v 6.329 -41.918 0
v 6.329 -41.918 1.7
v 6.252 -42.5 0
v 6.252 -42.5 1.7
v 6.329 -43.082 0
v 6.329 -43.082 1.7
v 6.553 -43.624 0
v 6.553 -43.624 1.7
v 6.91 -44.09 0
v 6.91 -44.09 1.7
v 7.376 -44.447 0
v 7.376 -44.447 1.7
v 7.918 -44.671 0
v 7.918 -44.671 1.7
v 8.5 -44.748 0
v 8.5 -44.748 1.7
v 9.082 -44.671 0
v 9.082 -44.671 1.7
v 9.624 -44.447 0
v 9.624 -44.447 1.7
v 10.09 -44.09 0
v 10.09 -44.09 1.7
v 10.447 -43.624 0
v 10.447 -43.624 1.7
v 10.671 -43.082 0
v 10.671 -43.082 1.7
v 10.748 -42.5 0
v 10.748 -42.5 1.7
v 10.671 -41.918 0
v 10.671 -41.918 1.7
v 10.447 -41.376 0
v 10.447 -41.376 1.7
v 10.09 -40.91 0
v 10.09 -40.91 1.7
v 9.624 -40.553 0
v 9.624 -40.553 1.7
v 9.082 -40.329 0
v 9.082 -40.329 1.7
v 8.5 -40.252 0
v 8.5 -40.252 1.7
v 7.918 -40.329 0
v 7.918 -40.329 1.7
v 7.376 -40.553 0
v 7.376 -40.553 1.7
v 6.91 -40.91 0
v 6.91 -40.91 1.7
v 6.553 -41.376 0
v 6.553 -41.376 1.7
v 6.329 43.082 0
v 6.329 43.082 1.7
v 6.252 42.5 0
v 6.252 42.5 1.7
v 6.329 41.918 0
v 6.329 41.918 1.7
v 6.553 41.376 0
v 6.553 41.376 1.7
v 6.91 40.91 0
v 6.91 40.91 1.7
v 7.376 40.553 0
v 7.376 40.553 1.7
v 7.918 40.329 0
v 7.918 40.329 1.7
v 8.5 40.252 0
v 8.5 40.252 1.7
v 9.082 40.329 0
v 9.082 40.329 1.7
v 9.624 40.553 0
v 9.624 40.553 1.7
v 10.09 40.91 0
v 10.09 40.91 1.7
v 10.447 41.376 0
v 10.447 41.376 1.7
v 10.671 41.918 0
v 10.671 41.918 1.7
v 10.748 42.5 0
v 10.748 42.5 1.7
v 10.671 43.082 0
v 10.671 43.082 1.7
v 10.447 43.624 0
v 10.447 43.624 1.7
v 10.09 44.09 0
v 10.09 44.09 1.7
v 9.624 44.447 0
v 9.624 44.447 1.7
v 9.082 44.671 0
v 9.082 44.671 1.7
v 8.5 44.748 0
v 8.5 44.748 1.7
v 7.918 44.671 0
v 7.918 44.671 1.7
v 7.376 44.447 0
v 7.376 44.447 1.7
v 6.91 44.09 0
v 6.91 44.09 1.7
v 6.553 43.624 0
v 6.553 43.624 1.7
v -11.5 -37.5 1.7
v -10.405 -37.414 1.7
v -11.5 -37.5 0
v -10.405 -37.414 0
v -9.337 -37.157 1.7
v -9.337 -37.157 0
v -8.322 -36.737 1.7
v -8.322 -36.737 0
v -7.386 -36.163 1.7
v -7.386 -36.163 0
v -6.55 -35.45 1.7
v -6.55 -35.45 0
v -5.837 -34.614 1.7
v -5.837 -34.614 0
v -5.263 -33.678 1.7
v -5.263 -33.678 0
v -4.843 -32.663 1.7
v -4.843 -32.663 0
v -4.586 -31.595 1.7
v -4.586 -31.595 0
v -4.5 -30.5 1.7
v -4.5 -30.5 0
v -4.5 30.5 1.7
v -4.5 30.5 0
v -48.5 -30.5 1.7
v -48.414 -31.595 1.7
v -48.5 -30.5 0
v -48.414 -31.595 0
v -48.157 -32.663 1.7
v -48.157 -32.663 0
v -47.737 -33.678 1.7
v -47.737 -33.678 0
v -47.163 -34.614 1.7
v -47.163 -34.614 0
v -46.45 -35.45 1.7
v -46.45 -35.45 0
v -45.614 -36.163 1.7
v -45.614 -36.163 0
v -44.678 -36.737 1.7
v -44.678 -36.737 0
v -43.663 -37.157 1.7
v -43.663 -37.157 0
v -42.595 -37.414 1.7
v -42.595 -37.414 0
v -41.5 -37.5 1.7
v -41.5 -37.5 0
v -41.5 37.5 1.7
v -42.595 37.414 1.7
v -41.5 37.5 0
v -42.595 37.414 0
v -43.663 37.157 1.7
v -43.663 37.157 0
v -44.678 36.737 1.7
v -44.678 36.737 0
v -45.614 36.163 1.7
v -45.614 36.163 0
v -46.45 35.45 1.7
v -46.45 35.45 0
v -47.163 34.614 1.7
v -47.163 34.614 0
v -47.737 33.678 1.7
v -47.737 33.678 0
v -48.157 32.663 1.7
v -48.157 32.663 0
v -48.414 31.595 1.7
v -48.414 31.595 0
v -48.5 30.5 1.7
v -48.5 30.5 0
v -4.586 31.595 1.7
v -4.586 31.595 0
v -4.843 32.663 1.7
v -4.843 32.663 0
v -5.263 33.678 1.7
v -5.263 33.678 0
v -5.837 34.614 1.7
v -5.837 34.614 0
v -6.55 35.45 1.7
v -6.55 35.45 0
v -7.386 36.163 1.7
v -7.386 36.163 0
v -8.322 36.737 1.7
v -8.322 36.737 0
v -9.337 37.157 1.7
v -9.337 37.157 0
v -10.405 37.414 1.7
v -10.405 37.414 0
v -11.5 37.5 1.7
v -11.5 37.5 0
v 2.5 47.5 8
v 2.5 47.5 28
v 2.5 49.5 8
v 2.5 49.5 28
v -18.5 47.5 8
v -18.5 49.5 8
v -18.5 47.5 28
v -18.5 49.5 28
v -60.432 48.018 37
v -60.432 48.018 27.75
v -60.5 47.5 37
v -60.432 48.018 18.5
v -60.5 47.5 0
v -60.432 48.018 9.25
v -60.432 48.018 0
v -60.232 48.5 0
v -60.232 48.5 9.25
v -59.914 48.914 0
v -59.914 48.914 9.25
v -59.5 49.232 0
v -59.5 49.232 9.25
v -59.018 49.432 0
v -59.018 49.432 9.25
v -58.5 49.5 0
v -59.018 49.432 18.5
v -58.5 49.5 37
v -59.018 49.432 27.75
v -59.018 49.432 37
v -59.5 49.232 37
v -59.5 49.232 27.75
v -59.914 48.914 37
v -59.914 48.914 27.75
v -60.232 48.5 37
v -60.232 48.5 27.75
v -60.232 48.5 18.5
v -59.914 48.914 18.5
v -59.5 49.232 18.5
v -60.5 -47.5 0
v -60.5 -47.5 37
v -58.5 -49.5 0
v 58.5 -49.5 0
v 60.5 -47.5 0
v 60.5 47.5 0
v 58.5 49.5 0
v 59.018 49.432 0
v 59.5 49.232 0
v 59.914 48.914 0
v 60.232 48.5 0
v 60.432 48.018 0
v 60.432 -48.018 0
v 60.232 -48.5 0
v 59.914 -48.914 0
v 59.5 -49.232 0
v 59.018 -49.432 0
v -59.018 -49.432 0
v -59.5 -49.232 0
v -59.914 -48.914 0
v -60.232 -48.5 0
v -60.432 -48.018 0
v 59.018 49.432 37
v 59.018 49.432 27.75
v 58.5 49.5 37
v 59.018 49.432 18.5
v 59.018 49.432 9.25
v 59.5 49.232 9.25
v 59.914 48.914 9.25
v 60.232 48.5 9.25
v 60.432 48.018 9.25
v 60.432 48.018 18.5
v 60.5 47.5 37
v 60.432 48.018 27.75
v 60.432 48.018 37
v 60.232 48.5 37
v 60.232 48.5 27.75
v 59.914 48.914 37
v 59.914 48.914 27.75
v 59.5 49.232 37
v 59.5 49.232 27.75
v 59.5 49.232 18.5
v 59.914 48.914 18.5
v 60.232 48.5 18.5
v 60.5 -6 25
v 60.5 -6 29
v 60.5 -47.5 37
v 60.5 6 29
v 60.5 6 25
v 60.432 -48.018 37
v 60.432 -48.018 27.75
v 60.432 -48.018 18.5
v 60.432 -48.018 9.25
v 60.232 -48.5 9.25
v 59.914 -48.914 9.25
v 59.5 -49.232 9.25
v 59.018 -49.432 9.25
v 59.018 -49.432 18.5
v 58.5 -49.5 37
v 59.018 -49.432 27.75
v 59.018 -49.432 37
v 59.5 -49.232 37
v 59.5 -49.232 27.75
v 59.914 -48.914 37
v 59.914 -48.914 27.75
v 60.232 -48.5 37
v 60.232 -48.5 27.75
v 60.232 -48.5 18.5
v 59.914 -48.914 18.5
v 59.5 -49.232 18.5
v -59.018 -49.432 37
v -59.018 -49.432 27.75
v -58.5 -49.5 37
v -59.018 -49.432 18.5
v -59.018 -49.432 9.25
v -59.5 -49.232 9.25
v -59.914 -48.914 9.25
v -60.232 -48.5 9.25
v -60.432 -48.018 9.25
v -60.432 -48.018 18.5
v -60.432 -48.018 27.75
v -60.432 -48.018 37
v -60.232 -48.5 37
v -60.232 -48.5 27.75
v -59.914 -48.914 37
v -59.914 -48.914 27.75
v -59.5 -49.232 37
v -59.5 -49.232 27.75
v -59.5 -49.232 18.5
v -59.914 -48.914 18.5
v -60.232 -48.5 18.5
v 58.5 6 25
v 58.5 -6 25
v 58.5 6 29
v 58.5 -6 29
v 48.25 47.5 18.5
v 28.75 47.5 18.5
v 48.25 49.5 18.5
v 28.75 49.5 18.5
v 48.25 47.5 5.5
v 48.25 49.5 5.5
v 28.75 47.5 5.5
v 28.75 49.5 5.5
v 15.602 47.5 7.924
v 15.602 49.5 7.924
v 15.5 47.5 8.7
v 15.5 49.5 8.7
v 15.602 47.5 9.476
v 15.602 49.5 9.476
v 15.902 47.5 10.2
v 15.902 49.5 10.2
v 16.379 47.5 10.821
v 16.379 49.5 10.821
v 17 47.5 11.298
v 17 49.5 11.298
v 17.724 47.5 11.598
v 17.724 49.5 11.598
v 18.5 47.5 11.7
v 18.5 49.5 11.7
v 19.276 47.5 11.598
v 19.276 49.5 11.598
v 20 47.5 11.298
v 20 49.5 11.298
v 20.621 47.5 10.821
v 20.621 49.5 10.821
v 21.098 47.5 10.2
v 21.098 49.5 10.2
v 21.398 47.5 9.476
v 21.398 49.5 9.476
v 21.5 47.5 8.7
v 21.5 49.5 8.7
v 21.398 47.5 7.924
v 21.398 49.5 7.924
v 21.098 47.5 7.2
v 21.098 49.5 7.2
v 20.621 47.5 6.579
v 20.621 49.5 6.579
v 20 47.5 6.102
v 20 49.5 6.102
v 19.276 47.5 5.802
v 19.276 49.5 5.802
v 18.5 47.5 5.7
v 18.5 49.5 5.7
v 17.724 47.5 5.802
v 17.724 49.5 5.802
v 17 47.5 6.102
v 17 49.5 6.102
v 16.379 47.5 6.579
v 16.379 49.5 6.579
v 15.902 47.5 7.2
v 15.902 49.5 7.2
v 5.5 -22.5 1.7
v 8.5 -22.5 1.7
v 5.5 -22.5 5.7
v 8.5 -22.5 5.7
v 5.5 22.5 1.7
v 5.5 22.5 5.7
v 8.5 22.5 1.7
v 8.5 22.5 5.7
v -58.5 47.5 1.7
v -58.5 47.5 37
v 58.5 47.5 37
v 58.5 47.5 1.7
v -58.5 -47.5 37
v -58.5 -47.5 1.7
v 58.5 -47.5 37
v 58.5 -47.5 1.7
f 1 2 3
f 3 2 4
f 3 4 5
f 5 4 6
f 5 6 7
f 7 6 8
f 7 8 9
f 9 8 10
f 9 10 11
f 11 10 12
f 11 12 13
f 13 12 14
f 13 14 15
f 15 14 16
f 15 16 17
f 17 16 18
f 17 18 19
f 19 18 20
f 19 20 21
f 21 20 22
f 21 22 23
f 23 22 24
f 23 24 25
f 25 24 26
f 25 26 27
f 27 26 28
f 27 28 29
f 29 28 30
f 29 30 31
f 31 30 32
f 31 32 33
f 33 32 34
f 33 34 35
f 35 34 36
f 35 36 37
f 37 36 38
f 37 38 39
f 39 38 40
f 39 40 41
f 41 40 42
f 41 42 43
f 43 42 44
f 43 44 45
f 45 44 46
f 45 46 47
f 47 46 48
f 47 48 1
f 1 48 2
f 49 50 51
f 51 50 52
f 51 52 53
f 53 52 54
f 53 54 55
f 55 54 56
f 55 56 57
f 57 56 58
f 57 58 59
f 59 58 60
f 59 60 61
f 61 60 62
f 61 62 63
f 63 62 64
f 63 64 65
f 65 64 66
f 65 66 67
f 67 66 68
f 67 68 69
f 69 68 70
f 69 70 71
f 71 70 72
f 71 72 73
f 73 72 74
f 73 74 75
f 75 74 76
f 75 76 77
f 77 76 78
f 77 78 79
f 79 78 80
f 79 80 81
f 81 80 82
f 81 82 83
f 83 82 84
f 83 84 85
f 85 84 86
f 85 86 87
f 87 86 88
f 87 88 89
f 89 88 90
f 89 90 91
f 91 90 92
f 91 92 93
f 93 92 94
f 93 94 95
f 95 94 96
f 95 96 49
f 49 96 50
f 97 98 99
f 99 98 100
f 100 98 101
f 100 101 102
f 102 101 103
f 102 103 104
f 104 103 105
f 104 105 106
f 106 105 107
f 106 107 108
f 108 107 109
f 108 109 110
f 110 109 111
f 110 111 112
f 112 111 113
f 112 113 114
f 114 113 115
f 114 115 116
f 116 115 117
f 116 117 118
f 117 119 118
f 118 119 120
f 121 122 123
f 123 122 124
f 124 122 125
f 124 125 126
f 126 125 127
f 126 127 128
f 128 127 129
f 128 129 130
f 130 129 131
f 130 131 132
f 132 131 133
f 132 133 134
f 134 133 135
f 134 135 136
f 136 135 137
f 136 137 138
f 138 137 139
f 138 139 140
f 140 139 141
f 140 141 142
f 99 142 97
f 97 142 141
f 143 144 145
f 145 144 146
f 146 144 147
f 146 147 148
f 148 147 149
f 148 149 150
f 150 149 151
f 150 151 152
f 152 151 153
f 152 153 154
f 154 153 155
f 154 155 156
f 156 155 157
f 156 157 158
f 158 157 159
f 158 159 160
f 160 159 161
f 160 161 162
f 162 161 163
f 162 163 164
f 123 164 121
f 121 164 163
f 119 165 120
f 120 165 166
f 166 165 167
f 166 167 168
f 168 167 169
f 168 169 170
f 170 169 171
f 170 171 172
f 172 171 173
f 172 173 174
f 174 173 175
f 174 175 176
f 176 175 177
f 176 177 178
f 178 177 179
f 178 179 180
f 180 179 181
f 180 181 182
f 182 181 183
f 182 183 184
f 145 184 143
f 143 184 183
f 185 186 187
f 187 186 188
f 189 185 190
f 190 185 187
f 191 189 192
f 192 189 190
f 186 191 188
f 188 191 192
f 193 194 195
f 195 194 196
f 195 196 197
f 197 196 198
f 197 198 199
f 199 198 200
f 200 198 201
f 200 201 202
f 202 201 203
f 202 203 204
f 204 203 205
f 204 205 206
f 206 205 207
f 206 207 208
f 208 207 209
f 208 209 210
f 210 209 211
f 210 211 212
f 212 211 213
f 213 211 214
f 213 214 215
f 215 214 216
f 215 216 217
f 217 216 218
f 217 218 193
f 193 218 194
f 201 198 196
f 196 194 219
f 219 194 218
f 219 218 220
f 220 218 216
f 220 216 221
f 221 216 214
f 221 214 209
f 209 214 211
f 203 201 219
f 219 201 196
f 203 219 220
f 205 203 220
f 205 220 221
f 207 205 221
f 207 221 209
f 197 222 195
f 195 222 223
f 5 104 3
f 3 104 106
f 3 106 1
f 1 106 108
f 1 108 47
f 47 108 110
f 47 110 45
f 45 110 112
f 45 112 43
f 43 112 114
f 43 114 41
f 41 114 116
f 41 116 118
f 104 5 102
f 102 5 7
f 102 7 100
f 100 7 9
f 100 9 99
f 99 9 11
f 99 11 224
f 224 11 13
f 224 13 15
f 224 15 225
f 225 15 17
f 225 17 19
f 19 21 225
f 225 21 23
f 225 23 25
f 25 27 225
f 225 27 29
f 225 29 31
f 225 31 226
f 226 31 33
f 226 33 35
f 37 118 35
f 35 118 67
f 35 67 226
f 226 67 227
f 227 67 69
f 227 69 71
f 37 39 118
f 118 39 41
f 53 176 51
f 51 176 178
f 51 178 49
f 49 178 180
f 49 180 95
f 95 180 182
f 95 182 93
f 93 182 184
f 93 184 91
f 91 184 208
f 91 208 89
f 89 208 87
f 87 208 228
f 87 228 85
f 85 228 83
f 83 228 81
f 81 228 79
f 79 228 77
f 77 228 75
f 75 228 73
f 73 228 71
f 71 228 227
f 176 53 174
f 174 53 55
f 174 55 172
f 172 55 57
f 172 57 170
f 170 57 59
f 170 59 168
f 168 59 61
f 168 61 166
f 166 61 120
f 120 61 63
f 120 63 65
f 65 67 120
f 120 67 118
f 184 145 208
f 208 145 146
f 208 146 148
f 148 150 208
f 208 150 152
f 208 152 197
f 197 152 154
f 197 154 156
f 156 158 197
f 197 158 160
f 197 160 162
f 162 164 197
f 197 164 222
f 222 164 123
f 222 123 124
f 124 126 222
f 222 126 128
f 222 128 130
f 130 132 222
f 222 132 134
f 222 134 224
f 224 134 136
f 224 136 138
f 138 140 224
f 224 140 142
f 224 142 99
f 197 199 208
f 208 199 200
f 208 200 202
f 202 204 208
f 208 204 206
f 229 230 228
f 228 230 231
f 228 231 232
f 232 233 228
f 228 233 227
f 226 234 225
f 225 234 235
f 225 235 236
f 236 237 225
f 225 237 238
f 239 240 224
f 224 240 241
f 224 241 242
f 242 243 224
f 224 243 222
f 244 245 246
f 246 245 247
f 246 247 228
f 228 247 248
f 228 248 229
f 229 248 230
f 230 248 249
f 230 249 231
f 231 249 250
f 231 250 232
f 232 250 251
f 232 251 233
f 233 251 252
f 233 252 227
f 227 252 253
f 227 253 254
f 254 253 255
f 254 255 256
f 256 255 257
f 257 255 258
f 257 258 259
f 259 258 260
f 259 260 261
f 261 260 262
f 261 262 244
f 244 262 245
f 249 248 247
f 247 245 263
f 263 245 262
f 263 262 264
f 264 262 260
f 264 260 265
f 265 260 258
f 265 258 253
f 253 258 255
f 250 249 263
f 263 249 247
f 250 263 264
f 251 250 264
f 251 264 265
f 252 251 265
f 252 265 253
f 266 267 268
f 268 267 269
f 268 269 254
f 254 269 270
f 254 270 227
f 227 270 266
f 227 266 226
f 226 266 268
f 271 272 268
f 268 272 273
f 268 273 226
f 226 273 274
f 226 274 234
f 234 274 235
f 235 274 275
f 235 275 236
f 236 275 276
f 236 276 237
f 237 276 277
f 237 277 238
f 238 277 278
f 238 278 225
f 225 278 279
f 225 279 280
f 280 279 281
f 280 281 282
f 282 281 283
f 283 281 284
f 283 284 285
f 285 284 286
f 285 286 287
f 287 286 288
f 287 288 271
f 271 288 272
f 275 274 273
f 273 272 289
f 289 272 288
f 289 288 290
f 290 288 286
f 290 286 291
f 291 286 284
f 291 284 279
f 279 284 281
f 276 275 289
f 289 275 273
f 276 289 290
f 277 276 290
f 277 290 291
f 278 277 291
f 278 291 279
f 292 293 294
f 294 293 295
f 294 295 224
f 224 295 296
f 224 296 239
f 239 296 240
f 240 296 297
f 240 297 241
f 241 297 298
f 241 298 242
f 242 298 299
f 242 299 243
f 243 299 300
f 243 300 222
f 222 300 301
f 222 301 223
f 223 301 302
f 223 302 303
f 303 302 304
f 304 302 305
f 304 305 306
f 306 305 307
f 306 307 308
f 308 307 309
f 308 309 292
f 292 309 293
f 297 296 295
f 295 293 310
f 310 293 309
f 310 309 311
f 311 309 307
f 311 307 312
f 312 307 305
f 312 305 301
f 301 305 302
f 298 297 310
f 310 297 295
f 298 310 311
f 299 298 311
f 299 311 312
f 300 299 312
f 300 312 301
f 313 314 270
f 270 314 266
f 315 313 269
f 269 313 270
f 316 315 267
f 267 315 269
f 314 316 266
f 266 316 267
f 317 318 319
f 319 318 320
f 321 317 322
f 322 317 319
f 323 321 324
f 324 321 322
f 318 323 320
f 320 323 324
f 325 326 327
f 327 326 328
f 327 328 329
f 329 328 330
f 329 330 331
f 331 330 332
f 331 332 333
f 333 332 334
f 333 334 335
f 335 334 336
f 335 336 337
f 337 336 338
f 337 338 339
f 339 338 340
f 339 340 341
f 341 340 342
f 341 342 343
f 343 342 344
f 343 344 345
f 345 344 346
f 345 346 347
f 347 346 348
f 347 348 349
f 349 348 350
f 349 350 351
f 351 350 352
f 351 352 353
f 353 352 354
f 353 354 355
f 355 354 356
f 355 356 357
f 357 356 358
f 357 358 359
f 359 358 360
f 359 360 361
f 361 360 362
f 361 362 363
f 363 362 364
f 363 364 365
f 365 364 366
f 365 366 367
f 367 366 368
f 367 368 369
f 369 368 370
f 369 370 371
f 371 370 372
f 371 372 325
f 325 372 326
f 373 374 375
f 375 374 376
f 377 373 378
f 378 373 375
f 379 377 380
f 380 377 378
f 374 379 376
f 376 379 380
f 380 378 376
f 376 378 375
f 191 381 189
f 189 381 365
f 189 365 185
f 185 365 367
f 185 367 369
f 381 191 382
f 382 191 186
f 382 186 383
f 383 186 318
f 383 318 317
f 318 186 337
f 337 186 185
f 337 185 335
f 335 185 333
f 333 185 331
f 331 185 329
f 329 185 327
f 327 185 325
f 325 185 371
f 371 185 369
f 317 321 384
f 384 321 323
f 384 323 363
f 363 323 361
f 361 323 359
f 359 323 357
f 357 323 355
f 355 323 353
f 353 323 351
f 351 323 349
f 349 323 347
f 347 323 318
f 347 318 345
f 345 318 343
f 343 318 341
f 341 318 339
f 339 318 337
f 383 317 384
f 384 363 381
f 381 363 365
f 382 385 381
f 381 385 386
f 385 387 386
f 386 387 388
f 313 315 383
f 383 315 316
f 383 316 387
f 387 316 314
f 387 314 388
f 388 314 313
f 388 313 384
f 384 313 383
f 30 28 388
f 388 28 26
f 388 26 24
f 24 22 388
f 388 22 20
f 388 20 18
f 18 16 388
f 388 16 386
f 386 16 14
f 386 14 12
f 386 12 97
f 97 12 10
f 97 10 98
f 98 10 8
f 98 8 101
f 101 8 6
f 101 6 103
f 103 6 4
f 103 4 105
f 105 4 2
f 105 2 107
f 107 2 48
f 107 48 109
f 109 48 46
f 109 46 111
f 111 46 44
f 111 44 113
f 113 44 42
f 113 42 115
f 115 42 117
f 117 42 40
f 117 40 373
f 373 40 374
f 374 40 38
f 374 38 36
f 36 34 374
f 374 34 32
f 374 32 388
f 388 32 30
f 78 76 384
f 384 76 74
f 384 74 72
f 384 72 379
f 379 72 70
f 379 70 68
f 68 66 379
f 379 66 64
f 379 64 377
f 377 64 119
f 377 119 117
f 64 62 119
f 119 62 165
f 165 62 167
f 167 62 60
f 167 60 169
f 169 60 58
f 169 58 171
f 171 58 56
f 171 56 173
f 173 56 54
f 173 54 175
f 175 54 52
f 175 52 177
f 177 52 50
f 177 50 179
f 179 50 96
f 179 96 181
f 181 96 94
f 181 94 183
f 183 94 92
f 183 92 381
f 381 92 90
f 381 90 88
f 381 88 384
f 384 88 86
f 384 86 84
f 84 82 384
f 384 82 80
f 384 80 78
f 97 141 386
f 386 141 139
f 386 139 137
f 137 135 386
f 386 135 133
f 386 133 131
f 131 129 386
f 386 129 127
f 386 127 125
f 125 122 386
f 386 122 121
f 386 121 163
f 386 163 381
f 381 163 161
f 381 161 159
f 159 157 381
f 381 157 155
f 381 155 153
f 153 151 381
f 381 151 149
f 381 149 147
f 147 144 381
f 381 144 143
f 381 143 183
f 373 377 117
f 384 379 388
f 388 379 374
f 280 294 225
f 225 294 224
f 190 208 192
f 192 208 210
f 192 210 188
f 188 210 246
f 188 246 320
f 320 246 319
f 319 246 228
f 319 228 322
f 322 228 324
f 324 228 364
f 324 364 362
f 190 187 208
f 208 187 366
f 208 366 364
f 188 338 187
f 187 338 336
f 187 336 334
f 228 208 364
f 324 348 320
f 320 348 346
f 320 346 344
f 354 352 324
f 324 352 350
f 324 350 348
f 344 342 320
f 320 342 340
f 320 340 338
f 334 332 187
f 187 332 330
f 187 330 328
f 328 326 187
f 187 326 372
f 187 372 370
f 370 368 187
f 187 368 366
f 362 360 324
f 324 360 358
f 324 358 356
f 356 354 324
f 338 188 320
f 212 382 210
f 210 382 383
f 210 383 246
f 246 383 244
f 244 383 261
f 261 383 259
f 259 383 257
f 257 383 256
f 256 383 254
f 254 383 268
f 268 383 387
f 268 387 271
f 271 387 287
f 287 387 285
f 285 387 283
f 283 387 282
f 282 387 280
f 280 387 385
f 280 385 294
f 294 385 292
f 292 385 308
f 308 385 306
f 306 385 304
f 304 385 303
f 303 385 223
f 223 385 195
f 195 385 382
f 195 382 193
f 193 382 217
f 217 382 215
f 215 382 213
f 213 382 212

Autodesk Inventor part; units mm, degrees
ref_plane "YZ Plane" through (0, 0, 0) normal (1, 0, 0) x (0, 1, 0)
ref_plane "XZ Plane" through (0, 0, 0) normal (0, 1, 0) x (-1, 0, 0)
ref_plane "XY Plane" through (0, 0, 0) normal (0, 0, 1) x (1, 0, 0)
sketch "Sketch1" plane through (0, 0, 0) normal (0, 0, 1) x (1, 0, 0)
  line L0 (-60.5, -49.5) -> (60.5, -49.5)
  line L1 (60.5, -49.5) -> (60.5, 49.5)
  line L2 (60.5, 49.5) -> (-60.5, 49.5)
  line L3 (-60.5, 49.5) -> (-60.5, -49.5)
  line L4 (-60.5, -49.5) -> (60.5, 49.5) construction
  line L5 (60.5, -49.5) -> (-60.5, 49.5) construction
  point P0 (0, 0)
  dimension "d0" = 121
  dimension "d1" = 99
extrude "Extrusion1" add sketch "Sketch1" along normal blind 37
sketch "Sketch3" plane through (0, 0, 37) normal (0, 0, 1) x (1, 0, 0)
  line L0 (-58.5, -47.5) -> (58.5, -47.5)
  line L1 (58.5, -47.5) -> (58.5, 47.5)
  line L2 (58.5, 47.5) -> (-58.5, 47.5)
  line L3 (-58.5, 47.5) -> (-58.5, -47.5)
  line L4 (-58.5, -47.5) -> (58.5, 47.5) construction
  line L5 (58.5, -47.5) -> (-58.5, 47.5) construction
  point P0 (0, 0)
  dimension "d8" = 117
  dimension "d9" = 95
extrude "Extrusion3" cut sketch "Sketch3" against normal blind 35.3
sketch "Sketch4" plane through (0, 0, 1.7) normal (0, 0, 1) x (1, 0, 0)
  line L0 (5.5, -22.5) -> (8.5, -22.5)
  line L1 (8.5, -22.5) -> (8.5, 22.5)
  line L2 (8.5, 22.5) -> (5.5, 22.5)
  line L3 (5.5, 22.5) -> (5.5, -22.5)
  line L4 (5.5, -22.5) -> (8.5, 22.5) construction
  line L5 (8.5, -22.5) -> (5.5, 22.5) construction
  line L6 (-58.5, -47.5) -> (-58.5, 47.5) projected
  point P0 (0, 0)
  point P1 (7, 0)
  dimension "d12" = 3
  dimension "d13" = 65.5
  dimension "d14" = 45
extrude "Extrusion4" add sketch "Sketch4" along normal blind 4
sketch "Sketch5" plane through (-60.5, 49.5, 0) normal (0, -1, 0) x (1, 0, 0)
  circle A0 centre (79, 8.7) radius 3
  line L0 (119, 1.7) -> (2, 1.7) projected
  line L1 (69, 1.7) -> (69, 5.7) projected
  point P0 (60.5, 0)
  dimension "d17" = 6
  dimension "d18" = 7
  dimension "d19" = 10
extrude "Extrusion5" cut sketch "Sketch5" along normal blind 4
sketch "Sketch6" plane through (-60.5, 49.5, 0) normal (0, -1, 0) x (1, 0, 0)
  line L0 (89.25, 5.5) -> (108.75, 5.5)
  line L1 (108.75, 5.5) -> (108.75, 18.5)
  line L2 (108.75, 18.5) -> (89.25, 18.5)
  line L3 (89.25, 18.5) -> (89.25, 5.5)
  line L4 (89.25, 5.5) -> (108.75, 18.5) construction
  line L5 (108.75, 5.5) -> (89.25, 18.5) construction
  line L6 (0, 0) -> (121, 0) projected
  circle A0 centre (79, 8.7) radius 3 projected
  point P0 (60.5, 0)
  point P1 (99, 12)
  point P2 (79, 9)
  dimension "d23" = 19.5
  dimension "d24" = 13
  dimension "d25" = 12
  dimension "d26" = 20
extrude "Extrusion6" cut sketch "Sketch6" along normal blind 4 contours L3 L2 L1 L0
sketch "Sketch9" plane through (60.5, -49.5, 0) normal (1, 0, 0) x (0, 0, -1)
  line L0 (-25, 43.5) -> (-29, 43.5)
  line L1 (-29, 43.5) -> (-29, 55.5)
  line L2 (-29, 55.5) -> (-25, 55.5)
  line L3 (-25, 55.5) -> (-25, 43.5)
  line L4 (-25, 43.5) -> (-29, 55.5) construction
  line L5 (-29, 43.5) -> (-25, 55.5) construction
  line L6 (-37, 0) -> (-37, 99) projected
  point P0 (0, 49.5)
  point P1 (-27, 49.5)
  point P2 (-27, 49.5)
  point P3 (-37, 49.5)
  dimension "d37" = 12
  dimension "d38" = 4
  dimension "d39" = 10
extrude "Extrusion8" cut sketch "Sketch9" against normal blind 10
fillet "Fillet2" radius 2 4 edges at (-60.5, -49.5, 18.5) (60.5, -49.5, 18.5) (60.5, 49.5, 18.5) (-60.5, 49.5, 18.5)
sketch "Sketch10" plane through (0, 0, 1.7) normal (0, 0, 1) x (1, 0, 0)
  line L0 (-48.5, 37.5) -> (-4.5, 37.5)
  line L1 (-4.5, 37.5) -> (-4.5, -37.5)
  line L2 (-4.5, -37.5) -> (-48.5, -37.5)
  line L3 (-48.5, -37.5) -> (-48.5, 37.5)
  line L4 (-48.5, 37.5) -> (-4.5, -37.5) construction
  line L5 (-4.5, 37.5) -> (-48.5, -37.5) construction
  line L6 (5.5, 22.5) -> (5.5, -22.5) projected
  line L7 (-58.5, -47.5) -> (-58.5, 47.5) projected
  line L8 (58.5, -47.5) -> (-58.5, -47.5) projected
  line L9 (-58.5, 47.5) -> (58.5, 47.5) projected
  point P0 (0, 0)
  point P1 (-26.5, 0)
  dimension "d43" = 10
  dimension "d44" = 10
  dimension "d45" = 10
  dimension "d46" = 10
extrude "Extrusion9" cut sketch "Sketch10" against normal blind 10
sketch "Sketch12" plane through (-58.5, 49.5, 0) normal (0, 1, 0) x (1, 0, 0)
  line L0 (61, -28) -> (40, -28)
  line L1 (40, -28) -> (40, -8)
  line L2 (40, -8) -> (61, -8)
  line L3 (61, -8) -> (61, -28)
  line L4 (61, -28) -> (40, -8) construction
  line L5 (40, -28) -> (61, -8) construction
  line L6 (117, 0) -> (0, 0) projected
  point P0 (58.5, 0)
  point P1 (50.5, -18)
  point P2 (0, -37)
  dimension "d49" = 20
  dimension "d50" = 21
  dimension "d51" = 40
  dimension "d52" = 8
extrude "Extrusion10" cut sketch "Sketch12" against normal blind 10
fillet "Fillet3" radius 7 4 edges at (-4.5, 37.5, 0.85) (-48.5, 37.5, 0.85) (-48.5, -37.5, 0.85) (-4.5, -37.5, 0.85)
sketch "Sketch13" plane through (0, 0, 1.7) normal (0, 0, 1) x (1, 0, 0)
  line L0 (58.5, 47.5) -> (58.5, -47.5) projected
  line L1 (-58.5, 47.5) -> (58.5, 47.5) projected
  line L2 (58.5, -47.5) -> (-58.5, -47.5) projected
  line L3 (-58.5, -47.5) -> (-58.5, 47.5) projected
  point P0 (0, 0)
  point P1 (8.5, -42.5)
  point P2 (8.5, 42.5)
  point P3 (8.5, 22.5)
  point P4 (8.5, -22.5)
  dimension "d57" = 5
  dimension "d58" = 5
hole "Hole1" at (8.5, -42.5, 1.7) at (8.5, 42.5, 1.7) direction (0, 0, -1) diameter 4.496 end through all clearance for "Flat Head Machine Screw (82)" size "#8" standard "Ansi Unified Screw Threads"
equation "\"d65\" = Thickness"
equation "\"BendRadius\" = Thickness"
equation "\"BendReliefWidth\" = Thickness"
equation "\"BendReliefDepth\" = 0.5 * Thickness"
equation "\"CornerReliefSize\" = 4 * Thickness"
equation "\"MinimumRemnant\" = 2 * Thickness"
equation "\"TransitionRadius\" = BendRadius"
equation "\"JacobiRadiusSize\" = Thickness"
equation "\"GapSize\" = Thickness"
equation "\"Thickness\" = 0.5"
properties part number "_3DPrint"
